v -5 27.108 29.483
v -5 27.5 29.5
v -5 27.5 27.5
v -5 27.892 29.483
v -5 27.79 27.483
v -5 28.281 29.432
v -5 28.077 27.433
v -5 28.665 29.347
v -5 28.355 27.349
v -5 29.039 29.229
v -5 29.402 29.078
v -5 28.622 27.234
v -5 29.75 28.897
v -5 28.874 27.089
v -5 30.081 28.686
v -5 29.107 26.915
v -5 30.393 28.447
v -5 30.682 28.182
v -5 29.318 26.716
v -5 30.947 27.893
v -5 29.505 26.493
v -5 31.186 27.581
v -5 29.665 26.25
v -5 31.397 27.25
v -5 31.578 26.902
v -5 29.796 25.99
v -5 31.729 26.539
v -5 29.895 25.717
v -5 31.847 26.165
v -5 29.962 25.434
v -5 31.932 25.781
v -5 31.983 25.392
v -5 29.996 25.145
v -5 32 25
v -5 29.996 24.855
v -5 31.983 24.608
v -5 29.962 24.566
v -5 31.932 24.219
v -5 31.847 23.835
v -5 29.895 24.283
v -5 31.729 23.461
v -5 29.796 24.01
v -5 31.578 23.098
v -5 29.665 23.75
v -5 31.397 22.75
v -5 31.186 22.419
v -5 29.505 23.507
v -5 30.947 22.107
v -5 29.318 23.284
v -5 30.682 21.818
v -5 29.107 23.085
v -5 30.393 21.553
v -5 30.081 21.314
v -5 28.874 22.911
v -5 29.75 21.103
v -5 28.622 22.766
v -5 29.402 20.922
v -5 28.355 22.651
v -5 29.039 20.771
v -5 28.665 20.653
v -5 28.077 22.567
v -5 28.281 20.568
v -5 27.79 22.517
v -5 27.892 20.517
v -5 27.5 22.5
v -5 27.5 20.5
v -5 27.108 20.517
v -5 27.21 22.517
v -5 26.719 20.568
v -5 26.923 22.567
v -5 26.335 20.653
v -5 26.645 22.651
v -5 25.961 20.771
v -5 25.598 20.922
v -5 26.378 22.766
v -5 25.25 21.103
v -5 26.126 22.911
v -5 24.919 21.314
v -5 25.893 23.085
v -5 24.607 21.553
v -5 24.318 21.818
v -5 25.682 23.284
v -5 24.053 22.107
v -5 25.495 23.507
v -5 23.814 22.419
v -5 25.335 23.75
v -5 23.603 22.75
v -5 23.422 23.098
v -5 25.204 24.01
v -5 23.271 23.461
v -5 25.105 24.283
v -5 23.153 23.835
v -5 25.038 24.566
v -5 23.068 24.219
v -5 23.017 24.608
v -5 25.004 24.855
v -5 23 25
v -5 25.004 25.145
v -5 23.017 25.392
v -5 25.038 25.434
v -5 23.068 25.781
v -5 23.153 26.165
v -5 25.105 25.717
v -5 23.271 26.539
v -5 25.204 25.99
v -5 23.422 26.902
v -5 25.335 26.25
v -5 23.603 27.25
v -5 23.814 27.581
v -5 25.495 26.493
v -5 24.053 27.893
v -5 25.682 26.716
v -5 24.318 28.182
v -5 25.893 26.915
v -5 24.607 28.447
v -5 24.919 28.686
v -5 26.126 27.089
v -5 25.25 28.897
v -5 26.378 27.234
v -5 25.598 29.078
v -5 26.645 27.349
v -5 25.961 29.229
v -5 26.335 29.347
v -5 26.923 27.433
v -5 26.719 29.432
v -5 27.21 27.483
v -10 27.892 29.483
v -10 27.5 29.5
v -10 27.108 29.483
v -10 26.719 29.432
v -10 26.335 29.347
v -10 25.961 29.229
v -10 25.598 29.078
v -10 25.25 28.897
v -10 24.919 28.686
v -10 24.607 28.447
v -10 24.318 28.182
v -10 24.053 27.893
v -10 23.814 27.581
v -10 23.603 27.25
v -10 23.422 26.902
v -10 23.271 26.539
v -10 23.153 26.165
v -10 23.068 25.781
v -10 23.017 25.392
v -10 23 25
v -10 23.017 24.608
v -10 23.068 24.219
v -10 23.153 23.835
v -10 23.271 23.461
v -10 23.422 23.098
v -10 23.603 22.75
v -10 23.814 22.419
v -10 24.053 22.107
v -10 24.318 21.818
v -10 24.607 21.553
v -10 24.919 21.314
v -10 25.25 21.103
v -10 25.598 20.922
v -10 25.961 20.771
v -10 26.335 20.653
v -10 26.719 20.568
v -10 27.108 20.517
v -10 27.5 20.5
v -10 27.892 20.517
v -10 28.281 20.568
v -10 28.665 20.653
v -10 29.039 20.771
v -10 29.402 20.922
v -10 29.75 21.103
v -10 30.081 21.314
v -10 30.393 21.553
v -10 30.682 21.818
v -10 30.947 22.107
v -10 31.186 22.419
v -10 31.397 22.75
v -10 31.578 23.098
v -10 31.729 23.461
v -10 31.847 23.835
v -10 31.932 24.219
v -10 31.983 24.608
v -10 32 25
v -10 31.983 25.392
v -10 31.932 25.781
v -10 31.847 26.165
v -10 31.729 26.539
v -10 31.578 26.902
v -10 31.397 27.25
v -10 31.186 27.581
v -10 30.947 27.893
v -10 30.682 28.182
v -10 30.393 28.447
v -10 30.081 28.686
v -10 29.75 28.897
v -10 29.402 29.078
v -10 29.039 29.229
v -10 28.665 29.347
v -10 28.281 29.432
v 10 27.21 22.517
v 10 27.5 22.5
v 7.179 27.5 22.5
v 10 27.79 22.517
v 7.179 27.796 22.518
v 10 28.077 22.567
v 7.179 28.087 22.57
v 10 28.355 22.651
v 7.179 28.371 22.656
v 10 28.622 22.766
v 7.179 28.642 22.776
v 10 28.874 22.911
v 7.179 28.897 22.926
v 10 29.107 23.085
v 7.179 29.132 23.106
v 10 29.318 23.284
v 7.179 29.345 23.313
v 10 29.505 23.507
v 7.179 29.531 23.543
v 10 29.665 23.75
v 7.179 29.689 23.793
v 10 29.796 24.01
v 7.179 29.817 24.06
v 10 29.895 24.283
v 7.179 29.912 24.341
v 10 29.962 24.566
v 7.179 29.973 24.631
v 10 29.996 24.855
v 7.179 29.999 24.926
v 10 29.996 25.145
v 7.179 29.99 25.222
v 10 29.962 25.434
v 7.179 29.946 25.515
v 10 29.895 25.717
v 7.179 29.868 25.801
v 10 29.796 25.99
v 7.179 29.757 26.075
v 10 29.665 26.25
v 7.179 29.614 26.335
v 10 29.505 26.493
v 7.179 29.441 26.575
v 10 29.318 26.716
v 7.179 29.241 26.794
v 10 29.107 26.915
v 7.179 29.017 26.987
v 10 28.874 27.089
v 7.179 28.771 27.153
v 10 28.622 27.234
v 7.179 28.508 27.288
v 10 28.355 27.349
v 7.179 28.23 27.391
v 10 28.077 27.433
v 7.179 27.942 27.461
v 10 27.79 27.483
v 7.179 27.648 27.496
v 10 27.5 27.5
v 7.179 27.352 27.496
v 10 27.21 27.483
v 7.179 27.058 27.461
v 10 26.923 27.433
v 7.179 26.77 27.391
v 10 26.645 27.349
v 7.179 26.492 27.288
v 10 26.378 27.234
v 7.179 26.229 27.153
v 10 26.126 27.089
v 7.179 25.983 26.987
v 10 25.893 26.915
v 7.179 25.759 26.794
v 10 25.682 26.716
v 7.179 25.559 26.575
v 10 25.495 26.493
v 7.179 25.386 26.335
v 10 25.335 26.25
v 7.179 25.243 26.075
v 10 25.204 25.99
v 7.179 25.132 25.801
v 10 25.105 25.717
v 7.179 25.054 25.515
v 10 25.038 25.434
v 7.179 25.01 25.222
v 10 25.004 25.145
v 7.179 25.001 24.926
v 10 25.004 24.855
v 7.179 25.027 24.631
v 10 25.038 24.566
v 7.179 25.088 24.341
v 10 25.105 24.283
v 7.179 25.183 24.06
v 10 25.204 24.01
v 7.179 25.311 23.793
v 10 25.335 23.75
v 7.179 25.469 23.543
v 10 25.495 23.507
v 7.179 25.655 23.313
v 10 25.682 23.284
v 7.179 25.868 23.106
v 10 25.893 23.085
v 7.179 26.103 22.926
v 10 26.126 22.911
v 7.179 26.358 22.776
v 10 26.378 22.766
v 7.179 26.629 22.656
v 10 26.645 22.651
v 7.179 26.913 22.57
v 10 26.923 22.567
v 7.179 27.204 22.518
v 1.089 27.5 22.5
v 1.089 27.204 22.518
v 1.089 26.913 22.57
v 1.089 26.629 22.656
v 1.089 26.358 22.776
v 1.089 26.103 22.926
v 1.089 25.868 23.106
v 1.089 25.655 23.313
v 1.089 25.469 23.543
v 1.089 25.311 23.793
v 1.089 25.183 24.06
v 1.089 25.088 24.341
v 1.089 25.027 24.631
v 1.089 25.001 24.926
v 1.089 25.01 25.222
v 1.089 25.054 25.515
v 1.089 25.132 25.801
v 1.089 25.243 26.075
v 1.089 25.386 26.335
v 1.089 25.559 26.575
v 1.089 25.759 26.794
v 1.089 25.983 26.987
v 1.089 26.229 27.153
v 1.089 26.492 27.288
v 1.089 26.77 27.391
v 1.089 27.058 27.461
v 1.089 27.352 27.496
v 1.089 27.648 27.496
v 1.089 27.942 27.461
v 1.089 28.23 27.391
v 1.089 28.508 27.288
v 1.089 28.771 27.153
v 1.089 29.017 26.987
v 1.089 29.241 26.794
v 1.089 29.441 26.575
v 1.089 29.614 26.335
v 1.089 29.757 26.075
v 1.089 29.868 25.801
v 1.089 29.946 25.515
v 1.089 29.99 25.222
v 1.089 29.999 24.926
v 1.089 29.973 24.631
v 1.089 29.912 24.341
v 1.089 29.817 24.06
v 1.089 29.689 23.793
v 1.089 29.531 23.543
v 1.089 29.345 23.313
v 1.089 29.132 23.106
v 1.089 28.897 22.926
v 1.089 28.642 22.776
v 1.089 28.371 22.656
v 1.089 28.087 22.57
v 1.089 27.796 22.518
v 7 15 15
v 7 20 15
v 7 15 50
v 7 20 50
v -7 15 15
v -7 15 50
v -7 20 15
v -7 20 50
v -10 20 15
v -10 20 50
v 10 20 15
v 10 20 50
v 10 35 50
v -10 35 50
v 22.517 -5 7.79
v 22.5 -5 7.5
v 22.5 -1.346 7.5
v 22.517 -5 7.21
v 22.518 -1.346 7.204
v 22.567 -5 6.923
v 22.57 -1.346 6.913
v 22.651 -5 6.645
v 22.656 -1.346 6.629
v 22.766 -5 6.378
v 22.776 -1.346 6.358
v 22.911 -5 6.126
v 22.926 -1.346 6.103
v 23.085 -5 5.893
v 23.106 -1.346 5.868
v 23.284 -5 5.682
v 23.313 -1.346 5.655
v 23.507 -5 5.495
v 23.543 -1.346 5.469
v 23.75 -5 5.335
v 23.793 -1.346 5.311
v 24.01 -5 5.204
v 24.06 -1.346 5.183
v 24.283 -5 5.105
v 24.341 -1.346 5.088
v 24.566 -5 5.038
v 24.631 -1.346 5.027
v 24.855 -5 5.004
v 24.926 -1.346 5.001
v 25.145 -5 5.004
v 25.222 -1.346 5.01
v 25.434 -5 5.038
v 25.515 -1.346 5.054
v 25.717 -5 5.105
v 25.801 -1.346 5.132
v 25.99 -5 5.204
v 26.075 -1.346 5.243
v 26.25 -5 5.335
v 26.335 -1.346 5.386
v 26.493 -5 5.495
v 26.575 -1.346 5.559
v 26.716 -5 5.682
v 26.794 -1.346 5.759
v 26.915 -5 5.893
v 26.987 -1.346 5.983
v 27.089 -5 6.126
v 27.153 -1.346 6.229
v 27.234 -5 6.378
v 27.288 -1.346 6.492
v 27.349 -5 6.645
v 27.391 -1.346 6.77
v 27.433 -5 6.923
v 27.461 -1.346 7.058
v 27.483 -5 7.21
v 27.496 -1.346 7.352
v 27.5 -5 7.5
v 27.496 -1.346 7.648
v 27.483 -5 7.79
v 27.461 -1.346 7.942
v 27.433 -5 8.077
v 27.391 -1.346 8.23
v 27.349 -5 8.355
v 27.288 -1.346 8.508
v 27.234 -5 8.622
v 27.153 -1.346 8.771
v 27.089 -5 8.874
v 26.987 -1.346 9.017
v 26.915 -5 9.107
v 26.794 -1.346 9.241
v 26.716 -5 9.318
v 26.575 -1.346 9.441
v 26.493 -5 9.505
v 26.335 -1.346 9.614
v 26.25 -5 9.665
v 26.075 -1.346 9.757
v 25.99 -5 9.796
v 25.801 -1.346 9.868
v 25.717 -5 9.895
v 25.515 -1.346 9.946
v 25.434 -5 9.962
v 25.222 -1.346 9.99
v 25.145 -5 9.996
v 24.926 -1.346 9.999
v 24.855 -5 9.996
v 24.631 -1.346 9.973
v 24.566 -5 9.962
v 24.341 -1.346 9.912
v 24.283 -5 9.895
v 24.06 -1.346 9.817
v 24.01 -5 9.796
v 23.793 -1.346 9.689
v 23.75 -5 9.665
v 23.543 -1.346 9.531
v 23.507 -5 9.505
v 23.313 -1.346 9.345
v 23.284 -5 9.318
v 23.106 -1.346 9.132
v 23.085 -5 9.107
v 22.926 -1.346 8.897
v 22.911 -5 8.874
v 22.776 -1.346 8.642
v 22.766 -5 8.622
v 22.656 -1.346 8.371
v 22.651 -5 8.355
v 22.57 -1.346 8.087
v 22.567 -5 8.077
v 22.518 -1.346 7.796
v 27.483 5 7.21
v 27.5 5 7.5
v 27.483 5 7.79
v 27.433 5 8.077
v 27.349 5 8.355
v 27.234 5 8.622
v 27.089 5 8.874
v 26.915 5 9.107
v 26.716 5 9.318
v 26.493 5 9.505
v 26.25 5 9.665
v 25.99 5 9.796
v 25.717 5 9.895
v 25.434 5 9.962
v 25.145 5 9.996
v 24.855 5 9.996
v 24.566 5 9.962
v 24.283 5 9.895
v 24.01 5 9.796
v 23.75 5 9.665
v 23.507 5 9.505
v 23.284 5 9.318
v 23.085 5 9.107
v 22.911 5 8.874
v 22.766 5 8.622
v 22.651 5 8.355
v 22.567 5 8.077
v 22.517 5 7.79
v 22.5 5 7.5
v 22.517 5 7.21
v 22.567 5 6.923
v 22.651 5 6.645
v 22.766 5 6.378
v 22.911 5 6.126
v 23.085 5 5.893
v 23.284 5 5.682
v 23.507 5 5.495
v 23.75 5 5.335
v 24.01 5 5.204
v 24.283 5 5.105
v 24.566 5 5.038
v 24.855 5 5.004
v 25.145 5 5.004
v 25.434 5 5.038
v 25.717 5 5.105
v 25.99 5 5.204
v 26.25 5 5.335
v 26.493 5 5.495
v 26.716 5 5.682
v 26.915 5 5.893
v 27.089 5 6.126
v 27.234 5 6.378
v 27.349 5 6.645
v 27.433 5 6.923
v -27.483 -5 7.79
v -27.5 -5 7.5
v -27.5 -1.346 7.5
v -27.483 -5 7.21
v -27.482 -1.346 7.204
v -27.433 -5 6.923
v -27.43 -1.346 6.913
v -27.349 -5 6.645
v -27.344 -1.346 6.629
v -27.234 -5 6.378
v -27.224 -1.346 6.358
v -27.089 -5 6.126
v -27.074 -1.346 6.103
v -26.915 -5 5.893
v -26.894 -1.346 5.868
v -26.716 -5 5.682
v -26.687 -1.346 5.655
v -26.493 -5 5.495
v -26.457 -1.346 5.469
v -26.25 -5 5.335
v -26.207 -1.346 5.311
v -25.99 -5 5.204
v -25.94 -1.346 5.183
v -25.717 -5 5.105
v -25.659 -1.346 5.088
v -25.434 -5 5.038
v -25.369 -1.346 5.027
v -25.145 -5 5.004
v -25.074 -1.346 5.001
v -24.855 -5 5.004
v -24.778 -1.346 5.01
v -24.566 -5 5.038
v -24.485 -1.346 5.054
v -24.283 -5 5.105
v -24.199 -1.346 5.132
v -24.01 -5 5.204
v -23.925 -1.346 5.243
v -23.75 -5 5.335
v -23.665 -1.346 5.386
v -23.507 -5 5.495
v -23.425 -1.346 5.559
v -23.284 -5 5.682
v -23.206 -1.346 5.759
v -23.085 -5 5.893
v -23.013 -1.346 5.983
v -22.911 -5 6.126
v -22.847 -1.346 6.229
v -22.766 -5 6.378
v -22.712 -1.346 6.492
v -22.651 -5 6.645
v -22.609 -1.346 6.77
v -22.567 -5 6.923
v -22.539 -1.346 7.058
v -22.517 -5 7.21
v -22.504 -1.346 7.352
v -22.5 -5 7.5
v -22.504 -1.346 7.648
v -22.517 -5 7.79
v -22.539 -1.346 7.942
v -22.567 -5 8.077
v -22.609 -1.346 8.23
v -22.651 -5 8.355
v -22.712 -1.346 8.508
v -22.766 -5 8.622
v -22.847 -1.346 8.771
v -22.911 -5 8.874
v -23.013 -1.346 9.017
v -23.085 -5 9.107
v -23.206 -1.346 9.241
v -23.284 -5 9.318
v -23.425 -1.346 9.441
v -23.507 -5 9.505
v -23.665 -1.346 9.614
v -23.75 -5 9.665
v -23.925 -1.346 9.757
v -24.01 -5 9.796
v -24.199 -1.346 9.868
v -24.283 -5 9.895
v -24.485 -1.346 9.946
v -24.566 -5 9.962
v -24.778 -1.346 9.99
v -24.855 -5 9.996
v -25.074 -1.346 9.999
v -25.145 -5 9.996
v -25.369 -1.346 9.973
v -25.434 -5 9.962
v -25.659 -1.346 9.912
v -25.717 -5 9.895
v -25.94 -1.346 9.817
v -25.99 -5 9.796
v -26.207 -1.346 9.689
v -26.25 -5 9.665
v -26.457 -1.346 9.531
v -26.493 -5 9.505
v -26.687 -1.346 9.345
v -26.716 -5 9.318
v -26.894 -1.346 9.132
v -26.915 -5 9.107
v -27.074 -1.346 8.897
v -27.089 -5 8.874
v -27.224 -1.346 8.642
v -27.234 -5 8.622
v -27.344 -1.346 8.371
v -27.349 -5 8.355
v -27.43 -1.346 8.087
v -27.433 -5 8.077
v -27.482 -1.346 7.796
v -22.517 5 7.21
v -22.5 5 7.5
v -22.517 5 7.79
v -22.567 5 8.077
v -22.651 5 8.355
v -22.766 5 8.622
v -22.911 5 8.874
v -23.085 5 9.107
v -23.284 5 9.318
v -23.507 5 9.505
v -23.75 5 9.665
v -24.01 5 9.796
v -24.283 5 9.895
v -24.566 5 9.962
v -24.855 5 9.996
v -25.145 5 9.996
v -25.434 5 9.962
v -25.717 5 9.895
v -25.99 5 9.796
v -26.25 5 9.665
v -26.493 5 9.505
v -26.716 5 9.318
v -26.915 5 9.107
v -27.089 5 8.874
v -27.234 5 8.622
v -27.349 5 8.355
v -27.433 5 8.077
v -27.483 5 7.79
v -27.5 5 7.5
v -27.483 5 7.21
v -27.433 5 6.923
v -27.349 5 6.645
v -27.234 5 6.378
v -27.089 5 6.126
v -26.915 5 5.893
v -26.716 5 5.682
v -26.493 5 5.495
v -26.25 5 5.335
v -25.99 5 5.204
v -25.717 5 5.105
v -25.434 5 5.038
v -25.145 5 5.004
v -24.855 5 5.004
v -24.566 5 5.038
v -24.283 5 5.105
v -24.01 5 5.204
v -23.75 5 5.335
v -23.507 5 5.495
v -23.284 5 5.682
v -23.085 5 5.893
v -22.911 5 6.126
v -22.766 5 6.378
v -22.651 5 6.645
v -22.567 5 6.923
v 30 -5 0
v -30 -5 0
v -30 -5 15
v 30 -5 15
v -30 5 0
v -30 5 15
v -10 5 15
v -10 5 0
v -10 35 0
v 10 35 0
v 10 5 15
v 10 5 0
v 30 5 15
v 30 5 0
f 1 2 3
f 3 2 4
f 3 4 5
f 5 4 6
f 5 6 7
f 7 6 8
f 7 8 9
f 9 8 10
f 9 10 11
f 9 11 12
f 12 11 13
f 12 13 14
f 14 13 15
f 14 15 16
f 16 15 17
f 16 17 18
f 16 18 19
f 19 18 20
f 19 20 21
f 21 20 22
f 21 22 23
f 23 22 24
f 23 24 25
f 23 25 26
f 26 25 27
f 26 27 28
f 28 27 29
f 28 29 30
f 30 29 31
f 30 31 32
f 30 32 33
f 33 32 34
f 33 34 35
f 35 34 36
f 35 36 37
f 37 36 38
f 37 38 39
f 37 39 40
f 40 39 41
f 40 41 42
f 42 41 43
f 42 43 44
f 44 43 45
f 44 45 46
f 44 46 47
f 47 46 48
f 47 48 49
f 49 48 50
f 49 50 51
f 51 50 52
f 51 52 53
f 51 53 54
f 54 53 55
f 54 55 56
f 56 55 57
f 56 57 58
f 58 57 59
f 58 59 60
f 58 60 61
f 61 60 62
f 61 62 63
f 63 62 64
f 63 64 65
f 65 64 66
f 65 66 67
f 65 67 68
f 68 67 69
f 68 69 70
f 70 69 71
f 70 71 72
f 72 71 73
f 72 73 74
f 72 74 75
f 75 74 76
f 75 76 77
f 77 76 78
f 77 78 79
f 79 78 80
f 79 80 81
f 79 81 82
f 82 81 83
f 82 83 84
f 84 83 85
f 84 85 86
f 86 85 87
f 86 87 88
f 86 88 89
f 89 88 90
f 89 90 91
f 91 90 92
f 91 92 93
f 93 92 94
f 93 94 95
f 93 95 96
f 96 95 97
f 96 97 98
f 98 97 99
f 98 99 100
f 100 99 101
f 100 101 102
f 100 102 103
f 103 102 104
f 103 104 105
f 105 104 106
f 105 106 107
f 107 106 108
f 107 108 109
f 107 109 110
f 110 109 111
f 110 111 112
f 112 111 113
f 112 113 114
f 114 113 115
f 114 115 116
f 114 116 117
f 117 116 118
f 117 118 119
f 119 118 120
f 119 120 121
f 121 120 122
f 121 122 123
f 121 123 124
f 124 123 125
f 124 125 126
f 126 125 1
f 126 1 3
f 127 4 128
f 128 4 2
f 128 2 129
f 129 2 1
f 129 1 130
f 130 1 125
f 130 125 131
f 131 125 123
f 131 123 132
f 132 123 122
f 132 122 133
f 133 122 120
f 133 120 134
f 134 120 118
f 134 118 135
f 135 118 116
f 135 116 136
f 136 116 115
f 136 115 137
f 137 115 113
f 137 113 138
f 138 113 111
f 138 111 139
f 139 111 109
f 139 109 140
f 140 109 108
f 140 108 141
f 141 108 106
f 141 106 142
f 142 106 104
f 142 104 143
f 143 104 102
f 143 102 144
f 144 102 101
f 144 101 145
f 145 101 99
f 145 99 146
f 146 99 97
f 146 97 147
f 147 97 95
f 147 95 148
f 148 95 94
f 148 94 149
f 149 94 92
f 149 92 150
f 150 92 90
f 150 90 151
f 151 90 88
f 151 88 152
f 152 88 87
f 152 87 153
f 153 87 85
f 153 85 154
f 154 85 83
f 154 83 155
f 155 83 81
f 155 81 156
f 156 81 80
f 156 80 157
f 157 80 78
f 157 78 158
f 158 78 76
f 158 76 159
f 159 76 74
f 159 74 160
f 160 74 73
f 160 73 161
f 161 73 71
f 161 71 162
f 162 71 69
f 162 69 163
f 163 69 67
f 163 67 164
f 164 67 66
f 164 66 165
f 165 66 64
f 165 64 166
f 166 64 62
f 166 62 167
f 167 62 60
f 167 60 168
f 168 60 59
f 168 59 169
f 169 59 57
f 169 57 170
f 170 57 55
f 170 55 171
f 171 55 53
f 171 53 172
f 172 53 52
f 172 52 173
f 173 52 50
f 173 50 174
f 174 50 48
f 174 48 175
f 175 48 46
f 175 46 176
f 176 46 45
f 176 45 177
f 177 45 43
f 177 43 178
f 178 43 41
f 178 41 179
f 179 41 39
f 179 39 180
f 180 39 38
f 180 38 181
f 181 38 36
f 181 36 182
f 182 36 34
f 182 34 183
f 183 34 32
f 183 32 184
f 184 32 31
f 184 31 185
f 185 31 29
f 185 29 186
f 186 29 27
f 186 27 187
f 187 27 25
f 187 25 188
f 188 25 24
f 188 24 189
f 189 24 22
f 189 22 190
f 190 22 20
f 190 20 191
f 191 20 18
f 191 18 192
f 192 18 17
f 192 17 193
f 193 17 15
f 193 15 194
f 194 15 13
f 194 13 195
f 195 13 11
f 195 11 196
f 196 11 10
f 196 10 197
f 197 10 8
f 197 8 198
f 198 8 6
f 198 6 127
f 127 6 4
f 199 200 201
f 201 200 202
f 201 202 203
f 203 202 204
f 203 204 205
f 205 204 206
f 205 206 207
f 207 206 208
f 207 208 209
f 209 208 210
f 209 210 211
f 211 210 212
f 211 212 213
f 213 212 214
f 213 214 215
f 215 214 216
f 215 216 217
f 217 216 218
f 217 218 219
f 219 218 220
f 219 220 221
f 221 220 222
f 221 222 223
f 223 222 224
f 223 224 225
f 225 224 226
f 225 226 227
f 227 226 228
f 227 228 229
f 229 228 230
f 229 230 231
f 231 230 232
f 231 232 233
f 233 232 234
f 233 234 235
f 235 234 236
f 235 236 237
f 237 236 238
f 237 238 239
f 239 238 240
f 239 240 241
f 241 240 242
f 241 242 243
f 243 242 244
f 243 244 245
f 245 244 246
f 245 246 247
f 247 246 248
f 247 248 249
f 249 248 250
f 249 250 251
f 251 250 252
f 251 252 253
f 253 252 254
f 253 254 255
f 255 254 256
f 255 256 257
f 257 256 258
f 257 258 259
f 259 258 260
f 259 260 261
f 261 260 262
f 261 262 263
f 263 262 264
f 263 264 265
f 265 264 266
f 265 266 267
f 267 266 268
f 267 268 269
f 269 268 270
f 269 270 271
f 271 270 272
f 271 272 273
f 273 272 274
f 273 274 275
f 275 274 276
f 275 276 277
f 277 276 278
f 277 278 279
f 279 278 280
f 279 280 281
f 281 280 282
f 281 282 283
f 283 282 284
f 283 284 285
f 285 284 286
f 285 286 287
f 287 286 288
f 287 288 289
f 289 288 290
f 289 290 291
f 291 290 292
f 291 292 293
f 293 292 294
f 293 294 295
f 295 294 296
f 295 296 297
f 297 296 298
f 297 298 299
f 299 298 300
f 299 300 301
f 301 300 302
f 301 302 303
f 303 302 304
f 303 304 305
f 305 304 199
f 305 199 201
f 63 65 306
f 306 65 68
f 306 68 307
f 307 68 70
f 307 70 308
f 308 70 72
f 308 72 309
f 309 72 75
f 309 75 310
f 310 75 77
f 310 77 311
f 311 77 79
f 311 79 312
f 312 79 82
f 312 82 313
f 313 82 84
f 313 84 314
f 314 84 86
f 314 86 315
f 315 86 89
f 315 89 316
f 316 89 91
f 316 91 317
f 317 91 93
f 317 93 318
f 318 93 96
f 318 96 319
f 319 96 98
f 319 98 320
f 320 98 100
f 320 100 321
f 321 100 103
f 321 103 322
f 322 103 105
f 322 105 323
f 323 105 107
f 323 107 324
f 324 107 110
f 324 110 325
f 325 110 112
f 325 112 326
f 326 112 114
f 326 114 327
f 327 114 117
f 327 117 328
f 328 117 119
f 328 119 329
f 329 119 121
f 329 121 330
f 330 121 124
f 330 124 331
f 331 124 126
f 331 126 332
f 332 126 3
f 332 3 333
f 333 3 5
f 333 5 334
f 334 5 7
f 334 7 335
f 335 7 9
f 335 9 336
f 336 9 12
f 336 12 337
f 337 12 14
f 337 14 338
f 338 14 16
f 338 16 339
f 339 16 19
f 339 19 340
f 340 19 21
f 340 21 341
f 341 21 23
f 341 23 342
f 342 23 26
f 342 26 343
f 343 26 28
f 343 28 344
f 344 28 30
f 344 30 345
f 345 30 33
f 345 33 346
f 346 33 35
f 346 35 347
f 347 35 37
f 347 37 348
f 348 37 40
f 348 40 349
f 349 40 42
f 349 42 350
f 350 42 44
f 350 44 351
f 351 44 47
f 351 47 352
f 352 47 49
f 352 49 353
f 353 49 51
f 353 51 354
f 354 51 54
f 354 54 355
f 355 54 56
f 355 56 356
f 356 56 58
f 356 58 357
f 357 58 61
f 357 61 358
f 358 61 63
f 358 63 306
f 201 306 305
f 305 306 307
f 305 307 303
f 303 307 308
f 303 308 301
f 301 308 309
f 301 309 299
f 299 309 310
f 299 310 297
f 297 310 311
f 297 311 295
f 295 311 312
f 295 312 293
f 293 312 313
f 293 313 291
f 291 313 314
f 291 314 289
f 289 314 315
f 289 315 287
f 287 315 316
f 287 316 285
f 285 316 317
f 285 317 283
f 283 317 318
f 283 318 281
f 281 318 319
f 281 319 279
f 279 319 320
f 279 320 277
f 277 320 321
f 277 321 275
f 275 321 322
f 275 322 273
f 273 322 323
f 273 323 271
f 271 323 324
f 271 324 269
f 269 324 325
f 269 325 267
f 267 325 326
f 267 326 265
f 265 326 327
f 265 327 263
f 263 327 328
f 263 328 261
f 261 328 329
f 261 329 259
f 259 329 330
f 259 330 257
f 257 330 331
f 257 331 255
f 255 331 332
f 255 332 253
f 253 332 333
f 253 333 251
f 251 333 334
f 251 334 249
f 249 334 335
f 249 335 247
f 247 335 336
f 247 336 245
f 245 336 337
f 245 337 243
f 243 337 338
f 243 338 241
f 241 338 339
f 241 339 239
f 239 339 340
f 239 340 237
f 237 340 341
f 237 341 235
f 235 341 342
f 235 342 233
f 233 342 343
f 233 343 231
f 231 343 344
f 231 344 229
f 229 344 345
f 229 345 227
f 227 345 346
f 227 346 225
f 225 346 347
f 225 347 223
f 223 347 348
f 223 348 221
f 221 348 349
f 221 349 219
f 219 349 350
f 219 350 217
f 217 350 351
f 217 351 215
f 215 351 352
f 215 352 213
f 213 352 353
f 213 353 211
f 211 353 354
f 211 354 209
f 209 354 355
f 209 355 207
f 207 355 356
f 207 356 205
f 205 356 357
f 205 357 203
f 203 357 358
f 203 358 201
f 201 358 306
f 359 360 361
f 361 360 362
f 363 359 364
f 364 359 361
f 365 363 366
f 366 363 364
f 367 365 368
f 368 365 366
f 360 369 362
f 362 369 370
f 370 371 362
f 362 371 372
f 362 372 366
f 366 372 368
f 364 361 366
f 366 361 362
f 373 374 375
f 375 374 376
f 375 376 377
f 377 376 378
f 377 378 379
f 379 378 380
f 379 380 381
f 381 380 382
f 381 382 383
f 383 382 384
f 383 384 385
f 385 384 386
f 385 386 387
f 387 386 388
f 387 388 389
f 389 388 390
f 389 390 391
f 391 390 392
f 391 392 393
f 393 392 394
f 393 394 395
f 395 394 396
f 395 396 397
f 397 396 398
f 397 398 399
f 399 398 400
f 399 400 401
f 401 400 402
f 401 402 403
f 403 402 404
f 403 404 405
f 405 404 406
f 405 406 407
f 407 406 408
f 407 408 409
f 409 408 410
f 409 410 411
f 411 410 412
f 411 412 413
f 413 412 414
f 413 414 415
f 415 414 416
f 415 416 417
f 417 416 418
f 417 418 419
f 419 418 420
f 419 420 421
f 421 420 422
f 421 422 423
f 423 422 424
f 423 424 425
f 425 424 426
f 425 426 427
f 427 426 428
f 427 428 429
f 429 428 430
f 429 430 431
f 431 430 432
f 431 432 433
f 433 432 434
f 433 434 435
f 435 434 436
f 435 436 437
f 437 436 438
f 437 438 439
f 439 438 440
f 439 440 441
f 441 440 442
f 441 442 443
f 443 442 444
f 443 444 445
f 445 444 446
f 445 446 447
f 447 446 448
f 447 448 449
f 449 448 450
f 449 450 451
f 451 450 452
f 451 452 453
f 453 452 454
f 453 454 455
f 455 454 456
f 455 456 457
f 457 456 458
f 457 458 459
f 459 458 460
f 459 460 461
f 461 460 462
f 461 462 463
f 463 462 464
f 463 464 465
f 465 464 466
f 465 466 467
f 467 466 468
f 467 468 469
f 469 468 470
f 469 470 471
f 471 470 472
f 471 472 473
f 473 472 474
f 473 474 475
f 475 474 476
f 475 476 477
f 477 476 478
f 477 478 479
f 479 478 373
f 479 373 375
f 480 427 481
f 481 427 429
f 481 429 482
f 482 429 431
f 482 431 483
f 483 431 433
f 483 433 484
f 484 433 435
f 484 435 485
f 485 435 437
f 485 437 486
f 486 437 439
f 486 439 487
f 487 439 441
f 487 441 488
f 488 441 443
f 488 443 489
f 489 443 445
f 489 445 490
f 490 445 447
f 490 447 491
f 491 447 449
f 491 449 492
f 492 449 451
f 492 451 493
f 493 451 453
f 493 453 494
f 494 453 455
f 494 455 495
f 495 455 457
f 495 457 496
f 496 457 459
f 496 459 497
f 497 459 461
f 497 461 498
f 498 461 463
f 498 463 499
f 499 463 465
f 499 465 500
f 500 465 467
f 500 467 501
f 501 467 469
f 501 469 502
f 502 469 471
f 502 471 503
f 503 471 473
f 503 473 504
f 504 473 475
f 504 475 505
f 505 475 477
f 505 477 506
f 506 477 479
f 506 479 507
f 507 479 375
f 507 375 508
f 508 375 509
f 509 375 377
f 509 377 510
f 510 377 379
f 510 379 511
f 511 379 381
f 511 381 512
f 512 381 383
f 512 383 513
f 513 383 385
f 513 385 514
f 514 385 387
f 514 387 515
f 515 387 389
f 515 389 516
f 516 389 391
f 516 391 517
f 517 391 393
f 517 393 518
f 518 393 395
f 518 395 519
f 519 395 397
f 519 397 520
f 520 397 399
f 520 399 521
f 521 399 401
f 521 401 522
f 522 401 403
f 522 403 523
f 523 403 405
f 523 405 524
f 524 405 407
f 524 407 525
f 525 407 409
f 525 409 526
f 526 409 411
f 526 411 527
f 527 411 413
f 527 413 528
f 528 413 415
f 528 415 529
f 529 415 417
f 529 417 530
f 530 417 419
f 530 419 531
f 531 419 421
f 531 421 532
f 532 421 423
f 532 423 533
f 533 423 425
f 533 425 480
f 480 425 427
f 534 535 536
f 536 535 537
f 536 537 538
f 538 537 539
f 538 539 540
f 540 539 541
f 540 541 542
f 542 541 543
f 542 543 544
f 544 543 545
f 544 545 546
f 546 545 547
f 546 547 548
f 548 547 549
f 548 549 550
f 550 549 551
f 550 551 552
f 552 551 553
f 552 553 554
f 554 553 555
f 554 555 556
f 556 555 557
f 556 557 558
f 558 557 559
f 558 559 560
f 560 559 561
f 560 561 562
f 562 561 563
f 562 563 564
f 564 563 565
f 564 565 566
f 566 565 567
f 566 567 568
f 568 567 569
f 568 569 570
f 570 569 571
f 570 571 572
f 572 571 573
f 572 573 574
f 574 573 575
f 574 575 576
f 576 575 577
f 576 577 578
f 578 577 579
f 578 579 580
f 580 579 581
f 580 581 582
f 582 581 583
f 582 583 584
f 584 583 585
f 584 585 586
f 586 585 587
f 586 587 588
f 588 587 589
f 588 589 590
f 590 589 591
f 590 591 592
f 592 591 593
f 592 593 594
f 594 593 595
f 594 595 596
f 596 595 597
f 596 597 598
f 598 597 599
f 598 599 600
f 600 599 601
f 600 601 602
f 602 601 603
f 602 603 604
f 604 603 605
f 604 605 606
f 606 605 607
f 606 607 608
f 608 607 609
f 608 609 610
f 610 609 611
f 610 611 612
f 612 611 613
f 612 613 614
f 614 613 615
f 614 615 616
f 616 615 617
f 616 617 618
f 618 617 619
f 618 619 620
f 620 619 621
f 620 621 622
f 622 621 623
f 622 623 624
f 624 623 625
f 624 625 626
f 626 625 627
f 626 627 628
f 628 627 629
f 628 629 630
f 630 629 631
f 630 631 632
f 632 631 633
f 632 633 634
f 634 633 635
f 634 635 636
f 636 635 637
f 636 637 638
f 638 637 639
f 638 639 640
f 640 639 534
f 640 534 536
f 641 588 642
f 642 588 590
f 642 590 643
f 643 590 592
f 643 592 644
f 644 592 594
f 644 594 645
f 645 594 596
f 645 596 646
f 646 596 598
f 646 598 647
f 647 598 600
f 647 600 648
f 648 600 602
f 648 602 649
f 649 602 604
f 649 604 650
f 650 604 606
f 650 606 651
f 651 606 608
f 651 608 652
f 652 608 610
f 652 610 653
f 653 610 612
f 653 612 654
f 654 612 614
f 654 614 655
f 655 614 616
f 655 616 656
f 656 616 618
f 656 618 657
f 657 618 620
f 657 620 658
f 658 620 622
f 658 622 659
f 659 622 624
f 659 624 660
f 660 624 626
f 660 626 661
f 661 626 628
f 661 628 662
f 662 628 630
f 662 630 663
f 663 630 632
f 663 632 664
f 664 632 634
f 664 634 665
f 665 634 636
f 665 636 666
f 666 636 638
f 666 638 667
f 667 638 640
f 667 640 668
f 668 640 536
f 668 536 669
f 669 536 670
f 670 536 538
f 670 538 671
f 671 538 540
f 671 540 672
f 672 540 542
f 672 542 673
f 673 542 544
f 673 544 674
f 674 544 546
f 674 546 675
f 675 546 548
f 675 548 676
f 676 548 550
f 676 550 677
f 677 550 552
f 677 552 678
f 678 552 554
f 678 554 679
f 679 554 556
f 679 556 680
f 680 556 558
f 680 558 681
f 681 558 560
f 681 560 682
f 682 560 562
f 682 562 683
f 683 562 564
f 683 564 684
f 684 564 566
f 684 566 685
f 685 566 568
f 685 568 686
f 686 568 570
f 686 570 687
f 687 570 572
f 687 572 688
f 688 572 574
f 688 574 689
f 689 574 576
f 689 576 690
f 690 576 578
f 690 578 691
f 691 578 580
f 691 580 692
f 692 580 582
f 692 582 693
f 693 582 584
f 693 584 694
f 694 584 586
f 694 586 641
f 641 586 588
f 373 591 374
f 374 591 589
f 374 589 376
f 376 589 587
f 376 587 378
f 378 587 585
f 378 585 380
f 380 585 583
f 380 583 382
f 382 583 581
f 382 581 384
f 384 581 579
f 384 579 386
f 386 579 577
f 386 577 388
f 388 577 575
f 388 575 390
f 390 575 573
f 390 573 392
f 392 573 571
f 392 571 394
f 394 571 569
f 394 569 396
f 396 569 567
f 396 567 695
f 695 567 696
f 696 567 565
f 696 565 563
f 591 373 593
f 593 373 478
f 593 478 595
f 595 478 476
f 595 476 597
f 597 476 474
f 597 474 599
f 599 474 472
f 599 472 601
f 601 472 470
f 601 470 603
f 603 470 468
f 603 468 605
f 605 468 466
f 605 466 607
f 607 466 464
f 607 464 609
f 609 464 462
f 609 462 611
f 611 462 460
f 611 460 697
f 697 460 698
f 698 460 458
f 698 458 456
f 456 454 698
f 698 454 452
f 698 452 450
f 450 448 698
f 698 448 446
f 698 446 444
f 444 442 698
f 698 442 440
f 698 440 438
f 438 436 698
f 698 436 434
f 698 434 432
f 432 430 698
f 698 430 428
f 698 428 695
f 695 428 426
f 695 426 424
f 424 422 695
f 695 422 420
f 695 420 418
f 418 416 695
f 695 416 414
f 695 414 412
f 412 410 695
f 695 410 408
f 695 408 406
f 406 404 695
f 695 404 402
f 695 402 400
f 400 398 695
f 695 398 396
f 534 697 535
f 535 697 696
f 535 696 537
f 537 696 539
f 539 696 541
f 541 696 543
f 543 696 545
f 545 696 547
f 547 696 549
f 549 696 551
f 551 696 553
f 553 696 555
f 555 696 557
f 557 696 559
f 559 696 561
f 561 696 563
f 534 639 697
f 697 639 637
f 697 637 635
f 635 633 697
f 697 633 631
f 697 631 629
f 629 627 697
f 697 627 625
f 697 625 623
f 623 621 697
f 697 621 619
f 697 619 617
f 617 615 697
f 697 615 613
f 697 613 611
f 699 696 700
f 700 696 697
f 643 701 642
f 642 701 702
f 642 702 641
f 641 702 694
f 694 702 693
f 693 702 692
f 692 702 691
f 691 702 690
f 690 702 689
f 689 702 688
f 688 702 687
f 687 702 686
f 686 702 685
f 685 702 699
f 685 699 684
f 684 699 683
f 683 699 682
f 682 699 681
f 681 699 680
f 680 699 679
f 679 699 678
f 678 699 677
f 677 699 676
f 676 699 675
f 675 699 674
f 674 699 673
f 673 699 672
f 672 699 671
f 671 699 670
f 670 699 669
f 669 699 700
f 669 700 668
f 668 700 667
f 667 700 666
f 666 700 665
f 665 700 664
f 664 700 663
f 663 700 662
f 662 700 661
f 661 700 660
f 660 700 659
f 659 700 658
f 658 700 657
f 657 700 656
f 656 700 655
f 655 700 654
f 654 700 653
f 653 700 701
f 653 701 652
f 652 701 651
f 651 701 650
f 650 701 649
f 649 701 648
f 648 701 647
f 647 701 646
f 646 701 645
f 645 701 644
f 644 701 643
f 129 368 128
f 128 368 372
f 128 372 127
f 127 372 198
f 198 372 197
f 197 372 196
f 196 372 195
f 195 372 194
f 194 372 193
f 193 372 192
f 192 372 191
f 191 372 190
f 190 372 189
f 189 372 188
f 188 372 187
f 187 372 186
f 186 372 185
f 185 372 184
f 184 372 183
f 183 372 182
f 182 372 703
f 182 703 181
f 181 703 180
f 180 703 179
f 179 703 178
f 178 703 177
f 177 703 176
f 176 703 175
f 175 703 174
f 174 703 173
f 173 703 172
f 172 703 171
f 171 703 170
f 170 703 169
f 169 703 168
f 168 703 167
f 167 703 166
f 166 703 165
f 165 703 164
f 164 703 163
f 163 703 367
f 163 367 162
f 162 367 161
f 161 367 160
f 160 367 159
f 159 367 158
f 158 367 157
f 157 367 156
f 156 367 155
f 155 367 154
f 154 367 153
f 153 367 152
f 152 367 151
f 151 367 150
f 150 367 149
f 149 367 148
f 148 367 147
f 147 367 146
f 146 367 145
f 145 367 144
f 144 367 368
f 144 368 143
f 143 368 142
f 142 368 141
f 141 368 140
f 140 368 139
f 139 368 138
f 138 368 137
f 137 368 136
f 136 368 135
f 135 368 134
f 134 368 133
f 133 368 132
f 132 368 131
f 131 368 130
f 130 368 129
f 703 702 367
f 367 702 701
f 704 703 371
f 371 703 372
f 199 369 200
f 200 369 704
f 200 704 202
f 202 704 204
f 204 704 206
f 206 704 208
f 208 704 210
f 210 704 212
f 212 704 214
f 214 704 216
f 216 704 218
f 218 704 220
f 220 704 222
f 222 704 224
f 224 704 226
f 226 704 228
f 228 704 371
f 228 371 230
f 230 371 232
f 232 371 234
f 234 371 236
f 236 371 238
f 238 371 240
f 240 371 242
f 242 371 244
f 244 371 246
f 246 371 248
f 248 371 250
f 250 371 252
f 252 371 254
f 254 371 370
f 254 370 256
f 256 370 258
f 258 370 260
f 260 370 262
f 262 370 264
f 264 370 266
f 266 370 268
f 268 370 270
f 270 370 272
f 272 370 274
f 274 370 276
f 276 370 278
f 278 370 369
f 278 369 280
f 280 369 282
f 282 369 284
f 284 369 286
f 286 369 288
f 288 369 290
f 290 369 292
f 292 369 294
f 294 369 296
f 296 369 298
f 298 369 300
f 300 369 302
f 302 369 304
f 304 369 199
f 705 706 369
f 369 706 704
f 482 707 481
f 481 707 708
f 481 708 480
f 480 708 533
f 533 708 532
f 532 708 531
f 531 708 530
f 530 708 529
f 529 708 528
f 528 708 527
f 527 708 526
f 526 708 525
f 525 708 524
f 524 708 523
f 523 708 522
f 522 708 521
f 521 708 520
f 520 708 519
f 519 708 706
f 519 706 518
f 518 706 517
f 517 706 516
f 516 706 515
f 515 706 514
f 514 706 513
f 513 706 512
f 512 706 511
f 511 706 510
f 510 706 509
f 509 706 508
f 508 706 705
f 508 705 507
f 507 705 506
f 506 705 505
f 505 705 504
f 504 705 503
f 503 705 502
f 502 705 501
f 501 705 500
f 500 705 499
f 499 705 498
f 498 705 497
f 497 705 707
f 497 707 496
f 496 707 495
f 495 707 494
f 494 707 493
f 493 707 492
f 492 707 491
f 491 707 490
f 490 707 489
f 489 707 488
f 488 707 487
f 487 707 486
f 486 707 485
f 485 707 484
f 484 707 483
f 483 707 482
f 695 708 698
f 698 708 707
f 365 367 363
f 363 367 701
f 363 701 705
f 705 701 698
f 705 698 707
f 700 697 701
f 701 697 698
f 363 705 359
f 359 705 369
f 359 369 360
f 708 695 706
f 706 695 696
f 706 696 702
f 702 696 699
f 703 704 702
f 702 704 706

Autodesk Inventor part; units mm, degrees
ref_plane "YZ Plane" through (0, 0, 0) normal (1, 0, 0) x (0, 1, 0)
ref_plane "XZ Plane" through (0, 0, 0) normal (0, 1, 0) x (-1, 0, 0)
ref_plane "XY Plane" through (0, 0, 0) normal (0, 0, 1) x (1, 0, 0)
sketch "Sketch1" plane through (0, 0, 0) normal (0, 0, 1) x (1, 0, 0)
  line L0 (-30, 5) -> (30, 5)
  line L1 (30, 5) -> (30, -5)
  line L2 (30, -5) -> (-30, -5)
  line L3 (-30, -5) -> (-30, 5)
  line L4 (-10, 35) -> (10, 35)
  line L5 (10, 35) -> (10, 5)
  line L6 (10, 5) -> (-10, 5)
  line L7 (-10, 5) -> (-10, 35)
  point P0 (0, 0)
  point P1 (0, 5)
  point P2 (-30, 0)
  point P3 (0, 5)
  dimension "d0" = 10
  dimension "d1" = 60
  dimension "d2" = 30
  dimension "d3" = 20
extrude "Extrusion1" add sketch "Sketch1" along normal blind 15
sketch "Sketch2" plane through (-30, 5, 0) normal (0, 1, 0) x (1, 0, 0)
  line L0 (30, -53.7244) -> (30, -44.0936) construction
  line L1 (40, -15) -> (20, -15) construction
  line L2 (0, 0) -> (0, -15) projected
  point P0 (30, 0)
  point P1 (55, -7.5)
  point P2 (5, -7.5)
  point P3 (30, -48.909)
  point P4 (30, -15)
  point P5 (0, -7.5)
  dimension "d6" = 50
hole "Hole1" at (25, 5, 7.5) at (-25, 5, 7.5) direction (0, -1, 0) diameter 5 end through all
sketch "Sketch3" plane through (0, 0, 15) normal (0, 0, 1) x (1, 0, 0)
  line L0 (-10, 35) -> (10, 35)
  line L1 (10, 35) -> (10, 15)
  line L2 (10, 15) -> (-10, 15)
  line L3 (-10, 15) -> (-10, 35)
  line L4 (10, 35) -> (-10, 35) projected
  line L5 (10, 5) -> (10, 35) projected
  line L6 (-10, 35) -> (-10, 5) projected
  line L7 (-10, 20) -> (-7, 20)
  line L8 (-7, 20) -> (-7, 15)
  line L9 (-7, 15) -> (-10, 15)
  line L10 (-10, 15) -> (-10, 20)
  line L11 (7, 20) -> (10, 20)
  line L12 (10, 20) -> (10, 15)
  line L13 (10, 15) -> (7, 15)
  line L14 (7, 15) -> (7, 20)
  line L15 (10, 5) -> (10, 35) projected
  point P0 (0, 0)
  point P1 (-10, 20)
  dimension "d14" = 20
  dimension "d15" = 3
  dimension "d16" = 5
extrude "Extrusion2" add sketch "Sketch3" along normal blind 35 contours L0 L1 L11 L14 L2 L8 L7 L3
sketch "Sketch4" plane through (-10, 5, 0) normal (-1, 0, 0) x (0, 0, 1)
  line L0 (50, 30) -> (50, 15) projected
  line L1 (15, 15) -> (15, 0) projected
  point P0 (0, -5)
  point P1 (25, 22.5)
  point P2 (50, 22.5)
  dimension "d27" = 25
hole "Hole2" at (-10, 27.5, 25) direction (1, 0, 0) diameter 5 end through all counterbore diameter 9 counterbore depth 5
properties part number "0008-10-054 Suport doking"
